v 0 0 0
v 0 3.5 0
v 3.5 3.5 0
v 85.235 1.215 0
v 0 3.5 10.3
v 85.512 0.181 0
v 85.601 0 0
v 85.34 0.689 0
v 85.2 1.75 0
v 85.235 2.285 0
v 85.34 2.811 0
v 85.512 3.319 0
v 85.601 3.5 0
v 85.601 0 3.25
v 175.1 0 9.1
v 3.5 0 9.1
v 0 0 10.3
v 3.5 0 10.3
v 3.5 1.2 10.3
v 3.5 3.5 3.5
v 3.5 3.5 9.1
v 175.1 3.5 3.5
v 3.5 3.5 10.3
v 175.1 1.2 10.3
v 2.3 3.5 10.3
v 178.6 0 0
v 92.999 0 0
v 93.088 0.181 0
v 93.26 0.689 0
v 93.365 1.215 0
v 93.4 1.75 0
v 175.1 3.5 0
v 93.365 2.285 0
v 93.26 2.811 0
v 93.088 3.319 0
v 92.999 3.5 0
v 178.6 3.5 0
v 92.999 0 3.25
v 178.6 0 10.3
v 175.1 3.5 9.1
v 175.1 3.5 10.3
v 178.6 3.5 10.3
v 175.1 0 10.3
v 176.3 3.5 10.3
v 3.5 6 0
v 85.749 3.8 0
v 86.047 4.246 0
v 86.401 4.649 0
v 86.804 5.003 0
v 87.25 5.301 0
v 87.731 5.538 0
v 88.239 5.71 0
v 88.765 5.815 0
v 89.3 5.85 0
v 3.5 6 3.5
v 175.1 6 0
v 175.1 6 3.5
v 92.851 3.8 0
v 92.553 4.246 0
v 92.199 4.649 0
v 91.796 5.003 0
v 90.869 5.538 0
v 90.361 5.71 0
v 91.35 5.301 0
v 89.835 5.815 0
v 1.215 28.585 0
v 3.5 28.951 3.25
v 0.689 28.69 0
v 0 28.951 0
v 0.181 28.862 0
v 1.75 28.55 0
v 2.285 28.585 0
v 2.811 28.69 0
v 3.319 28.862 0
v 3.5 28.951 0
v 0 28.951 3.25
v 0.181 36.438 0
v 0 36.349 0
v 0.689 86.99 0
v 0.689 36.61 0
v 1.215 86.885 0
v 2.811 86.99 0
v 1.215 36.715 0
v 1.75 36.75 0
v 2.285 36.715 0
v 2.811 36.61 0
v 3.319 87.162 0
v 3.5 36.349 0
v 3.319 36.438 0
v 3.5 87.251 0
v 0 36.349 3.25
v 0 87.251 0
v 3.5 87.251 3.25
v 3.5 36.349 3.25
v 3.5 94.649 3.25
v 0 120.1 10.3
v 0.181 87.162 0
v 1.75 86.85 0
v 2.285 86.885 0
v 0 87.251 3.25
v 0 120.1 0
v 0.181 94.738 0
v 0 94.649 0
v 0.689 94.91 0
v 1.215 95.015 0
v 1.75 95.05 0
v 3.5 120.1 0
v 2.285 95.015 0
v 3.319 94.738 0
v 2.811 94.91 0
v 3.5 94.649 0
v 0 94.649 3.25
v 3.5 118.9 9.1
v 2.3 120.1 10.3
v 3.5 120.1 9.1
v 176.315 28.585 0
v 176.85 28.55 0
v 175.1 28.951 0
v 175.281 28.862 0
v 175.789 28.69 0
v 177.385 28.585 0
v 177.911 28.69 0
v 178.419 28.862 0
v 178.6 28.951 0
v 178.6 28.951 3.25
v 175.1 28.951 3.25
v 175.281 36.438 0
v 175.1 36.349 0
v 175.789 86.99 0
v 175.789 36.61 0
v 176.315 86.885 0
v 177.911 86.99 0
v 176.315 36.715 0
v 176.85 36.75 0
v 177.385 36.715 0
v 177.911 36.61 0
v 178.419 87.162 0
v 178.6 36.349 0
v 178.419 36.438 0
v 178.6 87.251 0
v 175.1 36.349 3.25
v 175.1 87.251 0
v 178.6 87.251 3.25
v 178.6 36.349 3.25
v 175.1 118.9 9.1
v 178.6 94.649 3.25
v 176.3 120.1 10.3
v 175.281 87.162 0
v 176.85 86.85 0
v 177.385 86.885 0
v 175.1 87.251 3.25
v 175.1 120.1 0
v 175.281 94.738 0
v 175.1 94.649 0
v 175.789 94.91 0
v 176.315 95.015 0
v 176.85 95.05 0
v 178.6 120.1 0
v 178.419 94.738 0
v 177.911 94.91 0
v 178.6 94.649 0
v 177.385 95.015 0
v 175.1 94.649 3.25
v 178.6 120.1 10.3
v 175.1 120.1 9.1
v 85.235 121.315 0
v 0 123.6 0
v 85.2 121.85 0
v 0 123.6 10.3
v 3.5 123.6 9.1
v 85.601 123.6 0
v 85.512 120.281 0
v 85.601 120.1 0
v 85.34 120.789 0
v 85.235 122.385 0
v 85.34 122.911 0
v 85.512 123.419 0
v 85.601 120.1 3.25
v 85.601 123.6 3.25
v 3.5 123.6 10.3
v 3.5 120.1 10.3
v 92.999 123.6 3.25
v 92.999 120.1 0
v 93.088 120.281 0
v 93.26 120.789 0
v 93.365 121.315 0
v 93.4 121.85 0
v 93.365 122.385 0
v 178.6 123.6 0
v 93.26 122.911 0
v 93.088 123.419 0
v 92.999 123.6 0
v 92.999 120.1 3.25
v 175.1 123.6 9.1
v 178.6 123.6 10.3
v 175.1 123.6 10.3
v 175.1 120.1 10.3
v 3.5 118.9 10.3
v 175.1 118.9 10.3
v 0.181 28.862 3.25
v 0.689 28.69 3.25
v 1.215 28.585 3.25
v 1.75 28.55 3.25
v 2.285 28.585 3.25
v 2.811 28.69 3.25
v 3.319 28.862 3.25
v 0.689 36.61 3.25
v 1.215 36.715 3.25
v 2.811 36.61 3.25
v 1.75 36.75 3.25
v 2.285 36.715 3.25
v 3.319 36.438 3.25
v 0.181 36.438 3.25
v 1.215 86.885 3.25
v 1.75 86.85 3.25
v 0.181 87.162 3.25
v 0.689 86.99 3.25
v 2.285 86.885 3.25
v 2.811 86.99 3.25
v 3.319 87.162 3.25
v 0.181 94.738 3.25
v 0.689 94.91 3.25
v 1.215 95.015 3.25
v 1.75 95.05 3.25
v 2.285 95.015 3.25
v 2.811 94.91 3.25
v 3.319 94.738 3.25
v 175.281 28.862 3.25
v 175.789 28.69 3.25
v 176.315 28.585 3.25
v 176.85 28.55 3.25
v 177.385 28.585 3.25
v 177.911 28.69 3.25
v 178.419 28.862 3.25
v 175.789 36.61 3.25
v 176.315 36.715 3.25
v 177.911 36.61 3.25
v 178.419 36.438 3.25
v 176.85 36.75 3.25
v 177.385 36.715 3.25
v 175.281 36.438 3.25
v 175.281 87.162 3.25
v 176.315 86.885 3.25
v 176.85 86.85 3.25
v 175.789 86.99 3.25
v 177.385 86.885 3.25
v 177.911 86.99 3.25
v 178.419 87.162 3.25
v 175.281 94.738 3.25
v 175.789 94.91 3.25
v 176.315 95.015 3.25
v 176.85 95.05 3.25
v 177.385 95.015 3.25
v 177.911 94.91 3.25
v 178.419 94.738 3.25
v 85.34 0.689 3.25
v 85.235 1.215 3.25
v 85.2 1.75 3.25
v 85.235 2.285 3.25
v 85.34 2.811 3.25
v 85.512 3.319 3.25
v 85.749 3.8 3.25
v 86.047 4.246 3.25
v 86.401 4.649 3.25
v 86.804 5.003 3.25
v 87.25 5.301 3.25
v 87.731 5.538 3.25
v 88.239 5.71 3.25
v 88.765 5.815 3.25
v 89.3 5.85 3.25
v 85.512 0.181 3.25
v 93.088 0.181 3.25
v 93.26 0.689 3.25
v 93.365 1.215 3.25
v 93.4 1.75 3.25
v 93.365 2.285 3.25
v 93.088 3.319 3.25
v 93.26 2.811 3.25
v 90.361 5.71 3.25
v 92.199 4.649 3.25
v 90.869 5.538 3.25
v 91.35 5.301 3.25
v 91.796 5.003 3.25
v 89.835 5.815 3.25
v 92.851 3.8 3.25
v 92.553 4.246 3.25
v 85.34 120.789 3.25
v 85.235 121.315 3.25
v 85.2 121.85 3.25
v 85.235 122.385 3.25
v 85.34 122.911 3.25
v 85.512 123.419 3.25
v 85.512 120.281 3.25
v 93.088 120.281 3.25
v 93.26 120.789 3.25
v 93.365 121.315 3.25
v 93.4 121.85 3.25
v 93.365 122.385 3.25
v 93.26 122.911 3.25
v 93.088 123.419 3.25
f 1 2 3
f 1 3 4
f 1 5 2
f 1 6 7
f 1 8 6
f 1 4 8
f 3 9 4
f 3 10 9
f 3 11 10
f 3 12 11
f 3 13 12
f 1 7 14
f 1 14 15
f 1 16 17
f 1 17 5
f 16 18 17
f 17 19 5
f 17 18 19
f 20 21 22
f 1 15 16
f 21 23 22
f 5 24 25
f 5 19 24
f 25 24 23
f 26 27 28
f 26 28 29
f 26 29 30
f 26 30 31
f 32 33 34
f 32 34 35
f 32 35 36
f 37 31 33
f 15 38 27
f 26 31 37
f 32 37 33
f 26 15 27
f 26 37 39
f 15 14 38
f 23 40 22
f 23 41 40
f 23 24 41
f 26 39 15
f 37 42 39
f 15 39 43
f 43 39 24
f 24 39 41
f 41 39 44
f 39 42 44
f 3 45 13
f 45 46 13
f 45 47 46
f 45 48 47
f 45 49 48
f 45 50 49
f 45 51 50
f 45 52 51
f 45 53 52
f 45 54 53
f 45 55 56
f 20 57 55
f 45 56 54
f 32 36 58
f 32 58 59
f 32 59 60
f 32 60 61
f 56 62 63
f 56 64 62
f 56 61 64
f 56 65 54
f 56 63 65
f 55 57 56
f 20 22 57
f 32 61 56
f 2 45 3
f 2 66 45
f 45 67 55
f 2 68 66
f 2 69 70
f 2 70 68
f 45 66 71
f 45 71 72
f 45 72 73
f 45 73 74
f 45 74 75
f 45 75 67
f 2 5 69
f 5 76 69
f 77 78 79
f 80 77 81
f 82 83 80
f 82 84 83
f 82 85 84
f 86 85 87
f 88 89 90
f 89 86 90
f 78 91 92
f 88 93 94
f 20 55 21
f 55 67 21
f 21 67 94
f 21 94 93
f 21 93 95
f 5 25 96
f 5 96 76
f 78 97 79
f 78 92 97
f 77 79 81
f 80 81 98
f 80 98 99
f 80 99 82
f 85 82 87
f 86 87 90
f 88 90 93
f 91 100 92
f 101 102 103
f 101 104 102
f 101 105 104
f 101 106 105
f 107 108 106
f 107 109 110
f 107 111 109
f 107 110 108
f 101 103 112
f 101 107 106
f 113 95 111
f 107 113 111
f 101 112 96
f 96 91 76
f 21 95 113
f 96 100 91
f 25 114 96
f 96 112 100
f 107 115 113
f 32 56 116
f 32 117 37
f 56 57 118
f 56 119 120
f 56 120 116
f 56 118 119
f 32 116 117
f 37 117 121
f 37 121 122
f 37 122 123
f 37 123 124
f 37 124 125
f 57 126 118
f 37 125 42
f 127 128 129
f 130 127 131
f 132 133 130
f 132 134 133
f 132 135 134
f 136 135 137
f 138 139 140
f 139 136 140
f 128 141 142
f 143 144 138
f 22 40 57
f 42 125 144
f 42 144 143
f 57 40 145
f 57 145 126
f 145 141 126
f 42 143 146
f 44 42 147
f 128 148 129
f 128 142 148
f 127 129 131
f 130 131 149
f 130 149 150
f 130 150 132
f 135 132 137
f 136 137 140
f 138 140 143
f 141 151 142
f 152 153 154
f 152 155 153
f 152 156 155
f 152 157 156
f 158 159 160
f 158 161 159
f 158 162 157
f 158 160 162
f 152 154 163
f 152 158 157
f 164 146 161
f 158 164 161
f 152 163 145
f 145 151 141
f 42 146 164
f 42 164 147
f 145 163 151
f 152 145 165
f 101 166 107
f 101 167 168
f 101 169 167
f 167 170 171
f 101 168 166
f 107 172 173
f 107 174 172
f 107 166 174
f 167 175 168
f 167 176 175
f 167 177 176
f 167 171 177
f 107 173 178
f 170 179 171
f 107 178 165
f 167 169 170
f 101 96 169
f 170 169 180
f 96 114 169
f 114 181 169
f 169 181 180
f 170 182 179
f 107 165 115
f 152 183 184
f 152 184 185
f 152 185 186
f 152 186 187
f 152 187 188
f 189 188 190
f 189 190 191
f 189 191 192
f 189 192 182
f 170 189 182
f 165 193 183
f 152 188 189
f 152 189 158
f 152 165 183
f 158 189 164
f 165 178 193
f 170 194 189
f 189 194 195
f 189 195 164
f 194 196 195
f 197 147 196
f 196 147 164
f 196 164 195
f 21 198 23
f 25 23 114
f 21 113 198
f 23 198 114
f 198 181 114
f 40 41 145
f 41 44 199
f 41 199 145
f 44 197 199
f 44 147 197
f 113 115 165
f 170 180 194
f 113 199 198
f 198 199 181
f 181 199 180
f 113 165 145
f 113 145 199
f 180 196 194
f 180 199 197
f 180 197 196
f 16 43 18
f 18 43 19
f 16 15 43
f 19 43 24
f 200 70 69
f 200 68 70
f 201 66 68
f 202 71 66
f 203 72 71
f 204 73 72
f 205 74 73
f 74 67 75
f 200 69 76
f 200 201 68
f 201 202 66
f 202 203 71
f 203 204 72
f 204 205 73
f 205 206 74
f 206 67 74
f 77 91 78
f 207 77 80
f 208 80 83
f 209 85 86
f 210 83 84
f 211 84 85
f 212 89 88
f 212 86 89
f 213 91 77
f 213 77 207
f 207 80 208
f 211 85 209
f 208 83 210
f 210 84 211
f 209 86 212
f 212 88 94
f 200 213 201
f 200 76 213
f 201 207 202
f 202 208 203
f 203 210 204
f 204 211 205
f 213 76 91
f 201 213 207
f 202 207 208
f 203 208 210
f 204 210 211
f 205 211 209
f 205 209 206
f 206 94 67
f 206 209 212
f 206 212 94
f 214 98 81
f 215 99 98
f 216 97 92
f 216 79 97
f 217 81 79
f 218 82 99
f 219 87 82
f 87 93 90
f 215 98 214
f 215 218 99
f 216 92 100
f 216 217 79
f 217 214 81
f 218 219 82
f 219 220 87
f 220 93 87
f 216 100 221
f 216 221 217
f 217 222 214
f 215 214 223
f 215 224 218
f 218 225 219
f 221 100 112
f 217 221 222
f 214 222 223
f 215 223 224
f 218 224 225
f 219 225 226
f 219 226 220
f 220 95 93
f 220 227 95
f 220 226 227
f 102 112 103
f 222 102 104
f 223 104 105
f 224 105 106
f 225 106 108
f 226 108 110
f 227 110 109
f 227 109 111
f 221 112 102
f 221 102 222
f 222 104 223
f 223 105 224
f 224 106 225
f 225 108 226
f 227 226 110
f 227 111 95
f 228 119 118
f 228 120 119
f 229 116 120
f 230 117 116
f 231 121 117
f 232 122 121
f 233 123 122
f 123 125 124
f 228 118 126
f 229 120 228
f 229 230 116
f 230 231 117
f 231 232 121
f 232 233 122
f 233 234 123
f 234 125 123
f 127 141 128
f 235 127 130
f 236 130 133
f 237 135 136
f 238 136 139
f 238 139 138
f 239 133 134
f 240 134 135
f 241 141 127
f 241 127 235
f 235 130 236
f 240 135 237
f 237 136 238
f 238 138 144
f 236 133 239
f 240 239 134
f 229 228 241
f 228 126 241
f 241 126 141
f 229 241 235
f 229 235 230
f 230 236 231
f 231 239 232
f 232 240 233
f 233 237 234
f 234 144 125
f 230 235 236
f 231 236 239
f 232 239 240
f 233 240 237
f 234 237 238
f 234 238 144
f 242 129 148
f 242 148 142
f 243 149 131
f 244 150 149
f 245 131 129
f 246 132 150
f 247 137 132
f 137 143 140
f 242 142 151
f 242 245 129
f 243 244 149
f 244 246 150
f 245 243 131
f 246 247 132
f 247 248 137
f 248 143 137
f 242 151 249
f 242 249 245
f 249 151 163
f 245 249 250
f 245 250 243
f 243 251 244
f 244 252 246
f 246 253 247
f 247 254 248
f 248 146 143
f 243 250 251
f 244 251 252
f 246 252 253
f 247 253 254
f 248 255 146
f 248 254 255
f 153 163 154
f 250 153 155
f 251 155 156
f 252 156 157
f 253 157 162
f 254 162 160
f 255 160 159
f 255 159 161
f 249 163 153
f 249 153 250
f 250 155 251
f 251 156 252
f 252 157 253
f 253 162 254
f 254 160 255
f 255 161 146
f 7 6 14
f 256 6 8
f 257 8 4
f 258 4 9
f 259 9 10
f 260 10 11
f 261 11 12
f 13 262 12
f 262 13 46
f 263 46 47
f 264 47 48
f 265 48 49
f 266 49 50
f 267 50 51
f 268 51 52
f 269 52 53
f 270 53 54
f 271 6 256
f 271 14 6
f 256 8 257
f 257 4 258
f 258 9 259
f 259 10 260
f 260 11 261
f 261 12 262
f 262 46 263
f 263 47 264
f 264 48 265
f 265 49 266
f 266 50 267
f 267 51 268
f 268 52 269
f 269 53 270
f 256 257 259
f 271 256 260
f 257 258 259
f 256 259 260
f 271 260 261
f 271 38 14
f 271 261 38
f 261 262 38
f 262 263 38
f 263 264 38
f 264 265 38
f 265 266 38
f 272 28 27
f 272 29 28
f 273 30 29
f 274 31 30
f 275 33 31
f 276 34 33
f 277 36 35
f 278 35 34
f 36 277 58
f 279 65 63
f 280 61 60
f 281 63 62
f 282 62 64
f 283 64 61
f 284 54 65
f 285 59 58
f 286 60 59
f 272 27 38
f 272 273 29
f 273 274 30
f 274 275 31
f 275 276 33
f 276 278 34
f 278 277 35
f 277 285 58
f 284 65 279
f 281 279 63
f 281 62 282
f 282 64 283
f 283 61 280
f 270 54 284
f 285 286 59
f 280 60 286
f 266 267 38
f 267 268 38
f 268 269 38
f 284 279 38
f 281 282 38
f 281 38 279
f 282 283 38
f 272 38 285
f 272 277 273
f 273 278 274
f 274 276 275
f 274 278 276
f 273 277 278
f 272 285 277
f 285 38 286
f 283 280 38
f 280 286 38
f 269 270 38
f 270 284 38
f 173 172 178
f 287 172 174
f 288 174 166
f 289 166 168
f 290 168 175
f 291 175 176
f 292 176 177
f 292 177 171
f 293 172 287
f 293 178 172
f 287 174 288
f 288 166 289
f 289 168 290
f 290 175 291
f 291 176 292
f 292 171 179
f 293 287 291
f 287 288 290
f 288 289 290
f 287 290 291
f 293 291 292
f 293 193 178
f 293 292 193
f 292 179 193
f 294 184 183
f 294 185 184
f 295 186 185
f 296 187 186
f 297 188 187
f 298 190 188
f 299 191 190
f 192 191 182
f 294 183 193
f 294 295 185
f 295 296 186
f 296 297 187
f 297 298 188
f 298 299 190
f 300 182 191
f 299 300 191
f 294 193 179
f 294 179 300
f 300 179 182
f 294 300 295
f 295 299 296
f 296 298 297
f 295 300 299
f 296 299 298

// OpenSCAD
// =============================================================================
// Breadcrumbs Mount V2 — Open-back Magnetic Frame for TRMNL OG on MacBook Pro
// Based on TRMNL official fridge_mount design, adapted for laptop lid mounting
//
// CONCEPT: Same as fridge mount — open-back frame, magnets hold it to surface.
// The MacBook lid IS the back plate. TRMNL slides in, screen faces outward.
// No back plate = flush against lid, minimal added thickness.
//
// CHANGES FROM FRIDGE MOUNT:
// - Thinner walls (laptop aesthetic vs fridge utility)
// - Smaller magnets (8mm disc vs 5/8" disc — laptop lid is thin aluminum)
// - Added front lip to prevent TRMNL sliding out when lid tilts
// - Bottom shelf optional (magnets + lip may be enough)
// =============================================================================

// --- PARAMETERS --------------------------------------------------------------

// TRMNL OG enclosure (from Gadgeteer review + Waveshare EPD spec)
trmnl_w = 171.0;         // mm - width
trmnl_h = 116.0;         // mm - height
trmnl_d = 10.0;          // mm - thickness

// Fit clearance
tol = 0.3;               // mm per side (tight fit, laptop won't be slammed)

// Frame walls
wall = 3.5;              // mm - side rail thickness (must be > mag_depth)
rail_depth = trmnl_d + tol; // mm - how deep the rails are (matches device thickness)

// Front lip (prevents device sliding out when lid is tilted)
lip = 1.2;               // mm - lip overlap on screen side
lip_height = rail_depth;  // full depth lip

// Bottom shelf
shelf = true;             // bottom connecting rail
shelf_width = 6.0;        // mm - shelf depth (narrow, just structural)

// Top rail  
top_rail = true;          // top connecting rail (with lip)
top_rail_width = 6.0;     // mm

// Magnets (8mm × 3mm neodymium discs, recessed into back of rails)
mag_dia = 8.2;            // mm (slightly oversized for press-fit)
mag_depth = 3.2;          // mm
// Magnet positions: 2 per side rail + 1 on bottom shelf = 5 total
// (can add more if grip is insufficient)

// Corner radius
corner_r = 2.0;           // mm

// --- DERIVED -----------------------------------------------------------------

inner_w = trmnl_w + 2 * tol;
inner_h = trmnl_h + 2 * tol;
outer_w = inner_w + 2 * wall;
outer_h = inner_h + (shelf ? wall : 0) + (top_rail ? wall : 0);

// --- MODULES -----------------------------------------------------------------

module magnet_recess() {
    // Cut from the back face (Z=0 side, against laptop lid)
    cylinder(d=mag_dia, h=mag_depth + 0.1, $fn=48);
}

module side_rail(h) {
    // A single vertical rail
    cube([wall, h, rail_depth]);
}

// --- MAIN MODEL --------------------------------------------------------------

module breadcrumbs_v2() {
    difference() {
        union() {
            // === LEFT RAIL ===
            translate([0, shelf ? wall : 0, 0])
                cube([wall, inner_h, rail_depth]);
            
            // === RIGHT RAIL ===
            translate([wall + inner_w, shelf ? wall : 0, 0])
                cube([wall, inner_h, rail_depth]);
            
            // === BOTTOM SHELF ===
            if (shelf) {
                cube([outer_w, wall, rail_depth]);
                // Extended shelf floor (thin ledge inside for TRMNL to rest on)
                translate([wall, 0, 0])
                    cube([inner_w, shelf_width, wall]);  // thin floor
            }
            
            // === TOP RAIL ===
            if (top_rail) {
                translate([0, (shelf ? wall : 0) + inner_h, 0])
                    cube([outer_w, wall, rail_depth]);
            }
            
            // === FRONT LIPS (screen side, Z = rail_depth) ===
            // Left lip
            translate([wall - lip, shelf ? wall : 0, rail_depth - lip])
                cube([lip, inner_h, lip]);
            
            // Right lip
            translate([wall + inner_w, shelf ? wall : 0, rail_depth - lip])
                cube([lip, inner_h, lip]);
            
            // Top lip
            if (top_rail) {
                translate([wall, (shelf ? wall : 0) + inner_h - lip, rail_depth - lip])
                    cube([inner_w, lip + wall, lip]);
            }
            
            // Bottom lip
            if (shelf) {
                translate([wall, 0, rail_depth - lip])
                    cube([inner_w, lip, lip]);
            }
        }
        
        // === MAGNET RECESSES ===
        // Left rail: 2 magnets
        translate([wall/2, (shelf ? wall : 0) + inner_h * 0.25, -0.05])
            magnet_recess();
        translate([wall/2, (shelf ? wall : 0) + inner_h * 0.75, -0.05])
            magnet_recess();
        
        // Right rail: 2 magnets
        translate([wall + inner_w + wall/2, (shelf ? wall : 0) + inner_h * 0.25, -0.05])
            magnet_recess();
        translate([wall + inner_w + wall/2, (shelf ? wall : 0) + inner_h * 0.75, -0.05])
            magnet_recess();
        
        // Bottom shelf: 1 magnet center
        if (shelf) {
            translate([outer_w/2, wall/2, -0.05])
                magnet_recess();
        }
        
        // Top rail: 1 magnet center  
        if (top_rail) {
            translate([outer_w/2, (shelf ? wall : 0) + inner_h + wall/2, -0.05])
                magnet_recess();
        }
    }
}

// --- INFO --------------------------------------------------------------------

echo(str("=== Breadcrumbs V2 (Open-back Frame) ==="));
echo(str("Outer: ", outer_w, " × ", outer_h, " mm"));
echo(str("Inner pocket: ", inner_w, " × ", inner_h, " mm"));
echo(str("Rail depth: ", rail_depth, " mm (= device thickness)"));
echo(str("Added thickness to laptop: ", rail_depth, " mm"));
echo(str("Wall: ", wall, " mm, Lip: ", lip, " mm"));
num_magnets = 4 + (shelf ? 1 : 0) + (top_rail ? 1 : 0);
echo(str("Magnets: ", num_magnets, "× ⌀", mag_dia, "×", mag_depth, "mm"));

// --- RENDER ------------------------------------------------------------------

breadcrumbs_v2();
